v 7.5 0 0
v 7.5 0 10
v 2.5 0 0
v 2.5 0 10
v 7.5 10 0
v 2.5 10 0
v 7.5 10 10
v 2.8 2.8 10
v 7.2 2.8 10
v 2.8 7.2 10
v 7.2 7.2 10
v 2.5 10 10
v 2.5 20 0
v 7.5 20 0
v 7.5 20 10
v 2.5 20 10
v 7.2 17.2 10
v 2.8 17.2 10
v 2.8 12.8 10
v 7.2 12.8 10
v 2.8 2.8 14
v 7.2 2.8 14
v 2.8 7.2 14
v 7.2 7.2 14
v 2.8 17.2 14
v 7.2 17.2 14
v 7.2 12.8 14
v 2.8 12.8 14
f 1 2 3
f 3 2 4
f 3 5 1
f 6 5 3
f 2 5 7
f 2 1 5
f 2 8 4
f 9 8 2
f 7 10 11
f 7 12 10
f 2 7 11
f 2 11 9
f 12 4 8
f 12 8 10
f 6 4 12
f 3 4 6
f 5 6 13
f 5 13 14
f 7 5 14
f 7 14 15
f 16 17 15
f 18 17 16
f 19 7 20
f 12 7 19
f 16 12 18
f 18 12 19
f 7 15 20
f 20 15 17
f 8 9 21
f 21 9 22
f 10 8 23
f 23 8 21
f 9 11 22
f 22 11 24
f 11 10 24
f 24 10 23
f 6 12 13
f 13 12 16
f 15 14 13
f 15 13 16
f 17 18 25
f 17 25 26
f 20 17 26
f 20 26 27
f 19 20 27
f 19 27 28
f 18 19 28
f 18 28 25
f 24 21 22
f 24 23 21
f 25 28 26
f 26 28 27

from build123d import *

# Parameters (mm, degrees)
BOX_W             = 10
BOX_H             = 10
BOX_DEPTH         = 10
SKETCH_W          = 4.4
SKETCH_H          = 4.4
PAD_DEPTH         = 4
PAD_FACE1_W       = 10
PAD_FACE1_H       = 10
POCKET_DEPTH      = 2.5
POCKET_FACE3_W    = 10
POCKET_FACE3_H    = 10
POCKET001_DEPTH   = 2.5
POCKET001_FACE6_W = 5
POCKET001_FACE6_H = 10
PAD001_DEPTH      = 10
SKETCH001_W       = 4.4
SKETCH001_H       = 4.4
PAD002_DEPTH      = 4
PAD002_FACE3_W    = 10
PAD002_FACE3_H    = 10
PAD003_DEPTH      = 10
PAD003_FACE16_W   = 10
PAD003_FACE16_H   = 10
PAD004_DEPTH      = 10
PAD004_FACE19_W   = 10
PAD004_FACE19_H   = 10
POCKET002_DEPTH   = 10
POCKET002_FACE9_W = 10
POCKET002_FACE9_H = 10
POCKET003_DEPTH   = 10


with BuildPart() as part:
    # Box → Box (new body)
    with BuildSketch(Plane.XY):
        with Locations((5, 5)):
            Rectangle(BOX_W, BOX_H)
    extrude(amount=BOX_DEPTH)

    # Sketch (on Face6 of BaseFeature) → Pad (new body)
    with BuildSketch(Plane.XY.offset(10)):
        with Locations((5, 5)):
            Rectangle(SKETCH_W, SKETCH_H)
    extrude(amount=PAD_DEPTH)

    # Pad Face1 → Pocket (cut)
    with BuildSketch(Plane(origin=(0, 5, 5), x_dir=(0, 1, 0), z_dir=(-1, 0, 0))):
        Rectangle(PAD_FACE1_W, PAD_FACE1_H)
    extrude(amount=-POCKET_DEPTH, mode=Mode.SUBTRACT)

    # Pocket Face3 → Pocket001 (cut)
    with BuildSketch(Plane(origin=(10, 5, 5), x_dir=(0, -1, 0), z_dir=(1, 0, 0))):
        Rectangle(POCKET_FACE3_W, POCKET_FACE3_H)
    extrude(amount=-POCKET001_DEPTH, mode=Mode.SUBTRACT)

    # Pocket001 Face6 → Pad001 (add)
    with BuildSketch(Plane(origin=(5, 10, 5), x_dir=(1, 0, 0), z_dir=(0, 1, 0))):
        Rectangle(POCKET001_FACE6_W, POCKET001_FACE6_H)
    extrude(amount=PAD001_DEPTH)

    # Sketch001 (on Face8 of Pad001) → Pad002 (join)
    with BuildSketch(Plane.XY.offset(10)):
        with Locations((5, 15)):
            Rectangle(SKETCH001_W, SKETCH001_H)
    extrude(amount=PAD002_DEPTH)

    # Pad002 Face3 → Pad003 (add)
    with BuildSketch(Plane(origin=(7.5, 5, 5), x_dir=(0, -1, 0), z_dir=(1, 0, 0))):
        Rectangle(PAD002_FACE3_W, PAD002_FACE3_H)
    extrude(amount=PAD003_DEPTH)

    # Pad003 Face16 → Pad004 (add)
    with BuildSketch(Plane(origin=(7.5, 15, 5), x_dir=(0, -1, 0), z_dir=(1, 0, 0))):
        Rectangle(PAD003_FACE16_W, PAD003_FACE16_H)
    extrude(amount=PAD004_DEPTH)

    # Pad004 Face19 → Pocket002 (cut)
    with BuildSketch(Plane(origin=(17.5, 15, 5), x_dir=(0, -1, 0), z_dir=(1, 0, 0))):
        Rectangle(PAD004_FACE19_W, PAD004_FACE19_H)
    extrude(amount=-POCKET002_DEPTH, mode=Mode.SUBTRACT)

    # Pocket002 Face9 → Pocket003 (cut)
    with BuildSketch(Plane(origin=(17.5, 5, 5), x_dir=(0, -1, 0), z_dir=(1, 0, 0))):
        Rectangle(POCKET002_FACE9_W, POCKET002_FACE9_H)
    extrude(amount=-POCKET003_DEPTH, mode=Mode.SUBTRACT)


solid = part.part
